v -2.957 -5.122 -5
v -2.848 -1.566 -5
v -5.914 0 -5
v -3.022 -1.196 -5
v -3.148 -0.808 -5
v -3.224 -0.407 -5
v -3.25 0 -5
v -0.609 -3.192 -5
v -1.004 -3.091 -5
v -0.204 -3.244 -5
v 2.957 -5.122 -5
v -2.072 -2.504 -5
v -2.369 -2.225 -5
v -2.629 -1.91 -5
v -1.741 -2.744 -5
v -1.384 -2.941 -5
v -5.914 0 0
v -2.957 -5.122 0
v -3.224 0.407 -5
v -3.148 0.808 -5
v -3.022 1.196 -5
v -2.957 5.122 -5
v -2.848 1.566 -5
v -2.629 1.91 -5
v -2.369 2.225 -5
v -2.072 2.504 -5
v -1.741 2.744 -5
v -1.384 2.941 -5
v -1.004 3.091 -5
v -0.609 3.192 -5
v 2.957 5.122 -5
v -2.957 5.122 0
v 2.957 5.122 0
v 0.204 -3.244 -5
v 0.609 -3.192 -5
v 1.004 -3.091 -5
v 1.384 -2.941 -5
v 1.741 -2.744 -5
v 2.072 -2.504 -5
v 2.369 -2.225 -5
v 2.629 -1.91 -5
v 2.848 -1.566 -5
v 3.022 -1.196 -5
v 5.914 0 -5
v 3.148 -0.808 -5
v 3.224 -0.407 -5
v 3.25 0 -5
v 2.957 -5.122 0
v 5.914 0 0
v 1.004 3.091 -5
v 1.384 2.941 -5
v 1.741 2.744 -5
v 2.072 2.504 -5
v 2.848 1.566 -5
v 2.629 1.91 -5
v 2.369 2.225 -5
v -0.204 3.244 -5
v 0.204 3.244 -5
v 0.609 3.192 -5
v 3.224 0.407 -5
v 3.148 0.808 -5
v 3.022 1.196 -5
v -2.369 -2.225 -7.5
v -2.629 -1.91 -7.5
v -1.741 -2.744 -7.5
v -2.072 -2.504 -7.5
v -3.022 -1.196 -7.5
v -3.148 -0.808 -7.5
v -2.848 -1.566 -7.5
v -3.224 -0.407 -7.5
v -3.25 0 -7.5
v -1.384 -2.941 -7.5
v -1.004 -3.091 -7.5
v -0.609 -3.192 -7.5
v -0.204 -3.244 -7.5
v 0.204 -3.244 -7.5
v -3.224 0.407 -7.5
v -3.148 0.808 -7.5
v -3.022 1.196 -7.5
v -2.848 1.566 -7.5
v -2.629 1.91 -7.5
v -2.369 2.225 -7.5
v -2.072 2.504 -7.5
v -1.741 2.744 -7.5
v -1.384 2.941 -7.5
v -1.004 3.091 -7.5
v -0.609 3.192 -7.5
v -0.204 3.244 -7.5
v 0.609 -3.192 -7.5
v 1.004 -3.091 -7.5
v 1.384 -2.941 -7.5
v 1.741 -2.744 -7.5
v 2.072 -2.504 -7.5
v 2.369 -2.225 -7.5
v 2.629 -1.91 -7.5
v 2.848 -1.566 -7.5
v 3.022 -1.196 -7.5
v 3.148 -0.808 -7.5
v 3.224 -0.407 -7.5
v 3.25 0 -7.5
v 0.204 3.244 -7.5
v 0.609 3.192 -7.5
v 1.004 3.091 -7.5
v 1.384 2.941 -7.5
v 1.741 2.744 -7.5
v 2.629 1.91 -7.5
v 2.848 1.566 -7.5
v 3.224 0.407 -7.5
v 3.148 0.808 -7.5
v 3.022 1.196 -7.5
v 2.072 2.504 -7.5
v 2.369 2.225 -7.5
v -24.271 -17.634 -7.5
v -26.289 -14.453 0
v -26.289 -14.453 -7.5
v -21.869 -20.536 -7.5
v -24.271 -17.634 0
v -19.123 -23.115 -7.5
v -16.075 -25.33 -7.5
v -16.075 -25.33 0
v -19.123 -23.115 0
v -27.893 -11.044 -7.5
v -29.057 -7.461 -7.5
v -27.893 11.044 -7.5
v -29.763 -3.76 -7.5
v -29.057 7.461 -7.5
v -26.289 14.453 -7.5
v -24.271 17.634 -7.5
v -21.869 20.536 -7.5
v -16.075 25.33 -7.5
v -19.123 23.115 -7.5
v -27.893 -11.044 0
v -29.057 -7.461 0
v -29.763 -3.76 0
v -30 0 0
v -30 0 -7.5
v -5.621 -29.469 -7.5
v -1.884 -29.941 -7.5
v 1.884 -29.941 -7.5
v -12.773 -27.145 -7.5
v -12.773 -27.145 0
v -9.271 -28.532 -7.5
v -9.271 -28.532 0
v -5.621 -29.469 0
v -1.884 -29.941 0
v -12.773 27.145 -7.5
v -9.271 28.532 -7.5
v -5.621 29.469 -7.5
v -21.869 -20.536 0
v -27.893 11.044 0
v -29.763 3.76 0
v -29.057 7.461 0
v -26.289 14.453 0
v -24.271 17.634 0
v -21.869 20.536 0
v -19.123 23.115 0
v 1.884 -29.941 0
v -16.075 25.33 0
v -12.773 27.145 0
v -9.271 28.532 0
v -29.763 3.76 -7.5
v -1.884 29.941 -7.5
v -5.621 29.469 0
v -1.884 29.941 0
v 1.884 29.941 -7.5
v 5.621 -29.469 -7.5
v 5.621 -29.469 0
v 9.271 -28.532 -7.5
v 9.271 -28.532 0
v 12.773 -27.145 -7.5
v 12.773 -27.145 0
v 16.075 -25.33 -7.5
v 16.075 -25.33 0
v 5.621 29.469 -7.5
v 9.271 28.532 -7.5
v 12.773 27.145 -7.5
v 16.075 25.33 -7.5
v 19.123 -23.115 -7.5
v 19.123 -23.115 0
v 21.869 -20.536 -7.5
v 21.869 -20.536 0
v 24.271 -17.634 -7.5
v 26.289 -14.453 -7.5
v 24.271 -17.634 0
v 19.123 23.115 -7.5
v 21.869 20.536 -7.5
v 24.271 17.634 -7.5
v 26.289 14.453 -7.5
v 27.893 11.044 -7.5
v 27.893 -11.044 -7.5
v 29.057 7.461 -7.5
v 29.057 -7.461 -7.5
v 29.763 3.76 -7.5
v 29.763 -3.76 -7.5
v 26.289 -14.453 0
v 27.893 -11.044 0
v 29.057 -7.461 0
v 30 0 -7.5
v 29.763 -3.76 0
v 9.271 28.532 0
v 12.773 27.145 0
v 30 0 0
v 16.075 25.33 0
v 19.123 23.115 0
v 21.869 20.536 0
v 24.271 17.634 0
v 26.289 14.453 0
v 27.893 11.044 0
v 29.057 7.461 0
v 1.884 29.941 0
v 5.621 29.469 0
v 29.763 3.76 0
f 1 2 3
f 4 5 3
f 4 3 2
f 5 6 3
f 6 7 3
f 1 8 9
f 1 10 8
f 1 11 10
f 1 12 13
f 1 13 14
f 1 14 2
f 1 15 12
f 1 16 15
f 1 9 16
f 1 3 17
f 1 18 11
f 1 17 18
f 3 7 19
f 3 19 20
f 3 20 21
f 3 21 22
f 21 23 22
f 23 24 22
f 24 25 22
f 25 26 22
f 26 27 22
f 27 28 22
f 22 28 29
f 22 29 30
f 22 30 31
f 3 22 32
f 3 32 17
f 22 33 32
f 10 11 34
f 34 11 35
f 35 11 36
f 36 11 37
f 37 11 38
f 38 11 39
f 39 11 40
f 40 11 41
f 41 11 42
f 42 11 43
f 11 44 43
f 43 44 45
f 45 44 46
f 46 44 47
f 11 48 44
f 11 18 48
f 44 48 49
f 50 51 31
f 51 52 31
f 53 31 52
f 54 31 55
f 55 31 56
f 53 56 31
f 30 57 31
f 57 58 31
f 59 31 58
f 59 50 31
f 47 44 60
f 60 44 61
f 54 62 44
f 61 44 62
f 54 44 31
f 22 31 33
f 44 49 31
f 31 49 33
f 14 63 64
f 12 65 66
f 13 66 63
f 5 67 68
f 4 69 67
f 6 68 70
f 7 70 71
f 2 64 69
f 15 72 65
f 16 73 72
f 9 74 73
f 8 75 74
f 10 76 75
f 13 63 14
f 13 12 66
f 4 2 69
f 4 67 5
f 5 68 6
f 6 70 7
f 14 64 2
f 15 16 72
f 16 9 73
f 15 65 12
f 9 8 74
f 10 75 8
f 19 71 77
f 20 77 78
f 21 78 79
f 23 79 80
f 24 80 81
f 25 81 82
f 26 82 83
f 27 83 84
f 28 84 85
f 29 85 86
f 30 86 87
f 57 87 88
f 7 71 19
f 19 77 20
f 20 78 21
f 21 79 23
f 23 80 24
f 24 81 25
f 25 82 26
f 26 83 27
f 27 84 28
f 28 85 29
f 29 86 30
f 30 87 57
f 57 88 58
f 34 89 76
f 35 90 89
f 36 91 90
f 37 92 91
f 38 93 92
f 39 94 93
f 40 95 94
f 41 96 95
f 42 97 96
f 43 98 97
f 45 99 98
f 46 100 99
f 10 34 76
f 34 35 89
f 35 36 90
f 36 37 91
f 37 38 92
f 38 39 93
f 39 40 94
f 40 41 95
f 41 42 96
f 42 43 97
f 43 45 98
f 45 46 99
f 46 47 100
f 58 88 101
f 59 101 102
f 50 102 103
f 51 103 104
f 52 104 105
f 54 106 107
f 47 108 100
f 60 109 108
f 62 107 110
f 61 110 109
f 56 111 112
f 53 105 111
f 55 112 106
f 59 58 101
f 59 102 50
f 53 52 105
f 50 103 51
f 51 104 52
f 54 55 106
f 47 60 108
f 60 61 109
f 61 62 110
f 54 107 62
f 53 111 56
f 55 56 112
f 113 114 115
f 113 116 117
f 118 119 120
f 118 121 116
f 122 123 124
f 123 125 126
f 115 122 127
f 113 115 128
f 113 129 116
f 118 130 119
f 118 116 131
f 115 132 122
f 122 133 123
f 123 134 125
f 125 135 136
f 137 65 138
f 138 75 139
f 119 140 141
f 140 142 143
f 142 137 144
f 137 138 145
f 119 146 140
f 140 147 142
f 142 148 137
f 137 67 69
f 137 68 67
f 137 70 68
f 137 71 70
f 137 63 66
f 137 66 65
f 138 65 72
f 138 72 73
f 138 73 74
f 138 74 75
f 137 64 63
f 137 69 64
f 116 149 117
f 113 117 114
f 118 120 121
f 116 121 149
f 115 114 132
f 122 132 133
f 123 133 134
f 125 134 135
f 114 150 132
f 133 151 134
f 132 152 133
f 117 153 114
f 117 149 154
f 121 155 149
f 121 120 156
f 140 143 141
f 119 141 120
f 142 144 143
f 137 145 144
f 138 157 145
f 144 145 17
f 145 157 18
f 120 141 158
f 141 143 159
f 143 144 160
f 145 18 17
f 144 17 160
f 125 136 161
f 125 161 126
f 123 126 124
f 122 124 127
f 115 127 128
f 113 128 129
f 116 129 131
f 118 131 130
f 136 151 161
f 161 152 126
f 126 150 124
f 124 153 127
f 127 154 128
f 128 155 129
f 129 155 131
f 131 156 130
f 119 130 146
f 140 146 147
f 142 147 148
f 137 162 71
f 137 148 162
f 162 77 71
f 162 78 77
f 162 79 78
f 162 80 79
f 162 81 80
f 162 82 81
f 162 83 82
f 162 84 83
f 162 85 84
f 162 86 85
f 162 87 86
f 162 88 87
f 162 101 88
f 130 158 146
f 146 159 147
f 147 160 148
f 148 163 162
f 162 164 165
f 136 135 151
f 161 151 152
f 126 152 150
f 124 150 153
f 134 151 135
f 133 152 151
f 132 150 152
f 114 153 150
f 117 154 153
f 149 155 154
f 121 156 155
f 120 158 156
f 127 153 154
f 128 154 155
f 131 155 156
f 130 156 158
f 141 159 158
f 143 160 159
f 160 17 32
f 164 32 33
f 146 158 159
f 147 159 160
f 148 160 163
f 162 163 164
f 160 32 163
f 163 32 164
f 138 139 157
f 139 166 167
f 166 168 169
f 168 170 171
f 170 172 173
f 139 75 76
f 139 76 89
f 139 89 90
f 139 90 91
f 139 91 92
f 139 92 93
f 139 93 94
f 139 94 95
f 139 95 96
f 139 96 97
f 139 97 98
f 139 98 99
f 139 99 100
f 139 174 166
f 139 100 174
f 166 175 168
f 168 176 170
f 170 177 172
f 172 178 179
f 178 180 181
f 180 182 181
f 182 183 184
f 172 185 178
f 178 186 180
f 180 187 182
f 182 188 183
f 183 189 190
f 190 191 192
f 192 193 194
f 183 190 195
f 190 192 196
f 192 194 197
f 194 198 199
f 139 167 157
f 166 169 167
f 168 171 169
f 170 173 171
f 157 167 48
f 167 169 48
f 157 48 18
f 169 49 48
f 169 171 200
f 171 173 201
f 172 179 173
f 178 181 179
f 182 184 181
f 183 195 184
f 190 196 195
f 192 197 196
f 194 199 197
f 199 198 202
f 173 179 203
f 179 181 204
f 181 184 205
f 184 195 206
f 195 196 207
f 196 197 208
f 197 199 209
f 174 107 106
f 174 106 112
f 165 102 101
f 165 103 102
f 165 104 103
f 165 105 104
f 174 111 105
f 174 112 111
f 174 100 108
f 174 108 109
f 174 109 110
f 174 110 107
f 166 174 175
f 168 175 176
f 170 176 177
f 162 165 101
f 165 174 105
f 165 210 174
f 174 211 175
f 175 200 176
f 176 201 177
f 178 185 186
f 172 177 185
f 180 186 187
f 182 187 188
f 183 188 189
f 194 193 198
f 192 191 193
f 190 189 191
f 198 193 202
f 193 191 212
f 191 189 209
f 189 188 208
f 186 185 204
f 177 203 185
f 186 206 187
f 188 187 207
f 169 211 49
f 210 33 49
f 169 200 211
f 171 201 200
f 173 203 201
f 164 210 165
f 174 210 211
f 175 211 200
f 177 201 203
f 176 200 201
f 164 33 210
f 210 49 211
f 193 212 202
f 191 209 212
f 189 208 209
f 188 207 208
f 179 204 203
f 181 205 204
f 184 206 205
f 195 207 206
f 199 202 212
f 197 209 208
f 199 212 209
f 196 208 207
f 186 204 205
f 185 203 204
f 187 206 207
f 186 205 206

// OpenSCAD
$fn = 50;

difference() {
	union() {
		translate(v = [0, 0, -7.5]) {
			cylinder(h = 7.5, r = 30.0);
		}
	}
	union() {
		translate(v = [0, 0, 0]) {
			rotate(a = [0, 0, 0]) {
				difference() {
					union() {
						translate(v = [0, 0, -5]) {
							linear_extrude(height = 5) {
								polygon(points = [[5.914249999999999, 0.0], [2.957125, 5.1218907443321156], [-2.9571249999999982, 5.1218907443321156], [-5.914249999999999, 7.242867331857232e-16], [-2.9571250000000022, -5.121890744332115], [2.9571249999999956, -5.121890744332118]]);
							}
						}
					}
					union();
				}
			}
		}
		#translate(v = [0, 0, -100.0]) {
			cylinder(h = 200, r = 3.25);
		}
	}
}
